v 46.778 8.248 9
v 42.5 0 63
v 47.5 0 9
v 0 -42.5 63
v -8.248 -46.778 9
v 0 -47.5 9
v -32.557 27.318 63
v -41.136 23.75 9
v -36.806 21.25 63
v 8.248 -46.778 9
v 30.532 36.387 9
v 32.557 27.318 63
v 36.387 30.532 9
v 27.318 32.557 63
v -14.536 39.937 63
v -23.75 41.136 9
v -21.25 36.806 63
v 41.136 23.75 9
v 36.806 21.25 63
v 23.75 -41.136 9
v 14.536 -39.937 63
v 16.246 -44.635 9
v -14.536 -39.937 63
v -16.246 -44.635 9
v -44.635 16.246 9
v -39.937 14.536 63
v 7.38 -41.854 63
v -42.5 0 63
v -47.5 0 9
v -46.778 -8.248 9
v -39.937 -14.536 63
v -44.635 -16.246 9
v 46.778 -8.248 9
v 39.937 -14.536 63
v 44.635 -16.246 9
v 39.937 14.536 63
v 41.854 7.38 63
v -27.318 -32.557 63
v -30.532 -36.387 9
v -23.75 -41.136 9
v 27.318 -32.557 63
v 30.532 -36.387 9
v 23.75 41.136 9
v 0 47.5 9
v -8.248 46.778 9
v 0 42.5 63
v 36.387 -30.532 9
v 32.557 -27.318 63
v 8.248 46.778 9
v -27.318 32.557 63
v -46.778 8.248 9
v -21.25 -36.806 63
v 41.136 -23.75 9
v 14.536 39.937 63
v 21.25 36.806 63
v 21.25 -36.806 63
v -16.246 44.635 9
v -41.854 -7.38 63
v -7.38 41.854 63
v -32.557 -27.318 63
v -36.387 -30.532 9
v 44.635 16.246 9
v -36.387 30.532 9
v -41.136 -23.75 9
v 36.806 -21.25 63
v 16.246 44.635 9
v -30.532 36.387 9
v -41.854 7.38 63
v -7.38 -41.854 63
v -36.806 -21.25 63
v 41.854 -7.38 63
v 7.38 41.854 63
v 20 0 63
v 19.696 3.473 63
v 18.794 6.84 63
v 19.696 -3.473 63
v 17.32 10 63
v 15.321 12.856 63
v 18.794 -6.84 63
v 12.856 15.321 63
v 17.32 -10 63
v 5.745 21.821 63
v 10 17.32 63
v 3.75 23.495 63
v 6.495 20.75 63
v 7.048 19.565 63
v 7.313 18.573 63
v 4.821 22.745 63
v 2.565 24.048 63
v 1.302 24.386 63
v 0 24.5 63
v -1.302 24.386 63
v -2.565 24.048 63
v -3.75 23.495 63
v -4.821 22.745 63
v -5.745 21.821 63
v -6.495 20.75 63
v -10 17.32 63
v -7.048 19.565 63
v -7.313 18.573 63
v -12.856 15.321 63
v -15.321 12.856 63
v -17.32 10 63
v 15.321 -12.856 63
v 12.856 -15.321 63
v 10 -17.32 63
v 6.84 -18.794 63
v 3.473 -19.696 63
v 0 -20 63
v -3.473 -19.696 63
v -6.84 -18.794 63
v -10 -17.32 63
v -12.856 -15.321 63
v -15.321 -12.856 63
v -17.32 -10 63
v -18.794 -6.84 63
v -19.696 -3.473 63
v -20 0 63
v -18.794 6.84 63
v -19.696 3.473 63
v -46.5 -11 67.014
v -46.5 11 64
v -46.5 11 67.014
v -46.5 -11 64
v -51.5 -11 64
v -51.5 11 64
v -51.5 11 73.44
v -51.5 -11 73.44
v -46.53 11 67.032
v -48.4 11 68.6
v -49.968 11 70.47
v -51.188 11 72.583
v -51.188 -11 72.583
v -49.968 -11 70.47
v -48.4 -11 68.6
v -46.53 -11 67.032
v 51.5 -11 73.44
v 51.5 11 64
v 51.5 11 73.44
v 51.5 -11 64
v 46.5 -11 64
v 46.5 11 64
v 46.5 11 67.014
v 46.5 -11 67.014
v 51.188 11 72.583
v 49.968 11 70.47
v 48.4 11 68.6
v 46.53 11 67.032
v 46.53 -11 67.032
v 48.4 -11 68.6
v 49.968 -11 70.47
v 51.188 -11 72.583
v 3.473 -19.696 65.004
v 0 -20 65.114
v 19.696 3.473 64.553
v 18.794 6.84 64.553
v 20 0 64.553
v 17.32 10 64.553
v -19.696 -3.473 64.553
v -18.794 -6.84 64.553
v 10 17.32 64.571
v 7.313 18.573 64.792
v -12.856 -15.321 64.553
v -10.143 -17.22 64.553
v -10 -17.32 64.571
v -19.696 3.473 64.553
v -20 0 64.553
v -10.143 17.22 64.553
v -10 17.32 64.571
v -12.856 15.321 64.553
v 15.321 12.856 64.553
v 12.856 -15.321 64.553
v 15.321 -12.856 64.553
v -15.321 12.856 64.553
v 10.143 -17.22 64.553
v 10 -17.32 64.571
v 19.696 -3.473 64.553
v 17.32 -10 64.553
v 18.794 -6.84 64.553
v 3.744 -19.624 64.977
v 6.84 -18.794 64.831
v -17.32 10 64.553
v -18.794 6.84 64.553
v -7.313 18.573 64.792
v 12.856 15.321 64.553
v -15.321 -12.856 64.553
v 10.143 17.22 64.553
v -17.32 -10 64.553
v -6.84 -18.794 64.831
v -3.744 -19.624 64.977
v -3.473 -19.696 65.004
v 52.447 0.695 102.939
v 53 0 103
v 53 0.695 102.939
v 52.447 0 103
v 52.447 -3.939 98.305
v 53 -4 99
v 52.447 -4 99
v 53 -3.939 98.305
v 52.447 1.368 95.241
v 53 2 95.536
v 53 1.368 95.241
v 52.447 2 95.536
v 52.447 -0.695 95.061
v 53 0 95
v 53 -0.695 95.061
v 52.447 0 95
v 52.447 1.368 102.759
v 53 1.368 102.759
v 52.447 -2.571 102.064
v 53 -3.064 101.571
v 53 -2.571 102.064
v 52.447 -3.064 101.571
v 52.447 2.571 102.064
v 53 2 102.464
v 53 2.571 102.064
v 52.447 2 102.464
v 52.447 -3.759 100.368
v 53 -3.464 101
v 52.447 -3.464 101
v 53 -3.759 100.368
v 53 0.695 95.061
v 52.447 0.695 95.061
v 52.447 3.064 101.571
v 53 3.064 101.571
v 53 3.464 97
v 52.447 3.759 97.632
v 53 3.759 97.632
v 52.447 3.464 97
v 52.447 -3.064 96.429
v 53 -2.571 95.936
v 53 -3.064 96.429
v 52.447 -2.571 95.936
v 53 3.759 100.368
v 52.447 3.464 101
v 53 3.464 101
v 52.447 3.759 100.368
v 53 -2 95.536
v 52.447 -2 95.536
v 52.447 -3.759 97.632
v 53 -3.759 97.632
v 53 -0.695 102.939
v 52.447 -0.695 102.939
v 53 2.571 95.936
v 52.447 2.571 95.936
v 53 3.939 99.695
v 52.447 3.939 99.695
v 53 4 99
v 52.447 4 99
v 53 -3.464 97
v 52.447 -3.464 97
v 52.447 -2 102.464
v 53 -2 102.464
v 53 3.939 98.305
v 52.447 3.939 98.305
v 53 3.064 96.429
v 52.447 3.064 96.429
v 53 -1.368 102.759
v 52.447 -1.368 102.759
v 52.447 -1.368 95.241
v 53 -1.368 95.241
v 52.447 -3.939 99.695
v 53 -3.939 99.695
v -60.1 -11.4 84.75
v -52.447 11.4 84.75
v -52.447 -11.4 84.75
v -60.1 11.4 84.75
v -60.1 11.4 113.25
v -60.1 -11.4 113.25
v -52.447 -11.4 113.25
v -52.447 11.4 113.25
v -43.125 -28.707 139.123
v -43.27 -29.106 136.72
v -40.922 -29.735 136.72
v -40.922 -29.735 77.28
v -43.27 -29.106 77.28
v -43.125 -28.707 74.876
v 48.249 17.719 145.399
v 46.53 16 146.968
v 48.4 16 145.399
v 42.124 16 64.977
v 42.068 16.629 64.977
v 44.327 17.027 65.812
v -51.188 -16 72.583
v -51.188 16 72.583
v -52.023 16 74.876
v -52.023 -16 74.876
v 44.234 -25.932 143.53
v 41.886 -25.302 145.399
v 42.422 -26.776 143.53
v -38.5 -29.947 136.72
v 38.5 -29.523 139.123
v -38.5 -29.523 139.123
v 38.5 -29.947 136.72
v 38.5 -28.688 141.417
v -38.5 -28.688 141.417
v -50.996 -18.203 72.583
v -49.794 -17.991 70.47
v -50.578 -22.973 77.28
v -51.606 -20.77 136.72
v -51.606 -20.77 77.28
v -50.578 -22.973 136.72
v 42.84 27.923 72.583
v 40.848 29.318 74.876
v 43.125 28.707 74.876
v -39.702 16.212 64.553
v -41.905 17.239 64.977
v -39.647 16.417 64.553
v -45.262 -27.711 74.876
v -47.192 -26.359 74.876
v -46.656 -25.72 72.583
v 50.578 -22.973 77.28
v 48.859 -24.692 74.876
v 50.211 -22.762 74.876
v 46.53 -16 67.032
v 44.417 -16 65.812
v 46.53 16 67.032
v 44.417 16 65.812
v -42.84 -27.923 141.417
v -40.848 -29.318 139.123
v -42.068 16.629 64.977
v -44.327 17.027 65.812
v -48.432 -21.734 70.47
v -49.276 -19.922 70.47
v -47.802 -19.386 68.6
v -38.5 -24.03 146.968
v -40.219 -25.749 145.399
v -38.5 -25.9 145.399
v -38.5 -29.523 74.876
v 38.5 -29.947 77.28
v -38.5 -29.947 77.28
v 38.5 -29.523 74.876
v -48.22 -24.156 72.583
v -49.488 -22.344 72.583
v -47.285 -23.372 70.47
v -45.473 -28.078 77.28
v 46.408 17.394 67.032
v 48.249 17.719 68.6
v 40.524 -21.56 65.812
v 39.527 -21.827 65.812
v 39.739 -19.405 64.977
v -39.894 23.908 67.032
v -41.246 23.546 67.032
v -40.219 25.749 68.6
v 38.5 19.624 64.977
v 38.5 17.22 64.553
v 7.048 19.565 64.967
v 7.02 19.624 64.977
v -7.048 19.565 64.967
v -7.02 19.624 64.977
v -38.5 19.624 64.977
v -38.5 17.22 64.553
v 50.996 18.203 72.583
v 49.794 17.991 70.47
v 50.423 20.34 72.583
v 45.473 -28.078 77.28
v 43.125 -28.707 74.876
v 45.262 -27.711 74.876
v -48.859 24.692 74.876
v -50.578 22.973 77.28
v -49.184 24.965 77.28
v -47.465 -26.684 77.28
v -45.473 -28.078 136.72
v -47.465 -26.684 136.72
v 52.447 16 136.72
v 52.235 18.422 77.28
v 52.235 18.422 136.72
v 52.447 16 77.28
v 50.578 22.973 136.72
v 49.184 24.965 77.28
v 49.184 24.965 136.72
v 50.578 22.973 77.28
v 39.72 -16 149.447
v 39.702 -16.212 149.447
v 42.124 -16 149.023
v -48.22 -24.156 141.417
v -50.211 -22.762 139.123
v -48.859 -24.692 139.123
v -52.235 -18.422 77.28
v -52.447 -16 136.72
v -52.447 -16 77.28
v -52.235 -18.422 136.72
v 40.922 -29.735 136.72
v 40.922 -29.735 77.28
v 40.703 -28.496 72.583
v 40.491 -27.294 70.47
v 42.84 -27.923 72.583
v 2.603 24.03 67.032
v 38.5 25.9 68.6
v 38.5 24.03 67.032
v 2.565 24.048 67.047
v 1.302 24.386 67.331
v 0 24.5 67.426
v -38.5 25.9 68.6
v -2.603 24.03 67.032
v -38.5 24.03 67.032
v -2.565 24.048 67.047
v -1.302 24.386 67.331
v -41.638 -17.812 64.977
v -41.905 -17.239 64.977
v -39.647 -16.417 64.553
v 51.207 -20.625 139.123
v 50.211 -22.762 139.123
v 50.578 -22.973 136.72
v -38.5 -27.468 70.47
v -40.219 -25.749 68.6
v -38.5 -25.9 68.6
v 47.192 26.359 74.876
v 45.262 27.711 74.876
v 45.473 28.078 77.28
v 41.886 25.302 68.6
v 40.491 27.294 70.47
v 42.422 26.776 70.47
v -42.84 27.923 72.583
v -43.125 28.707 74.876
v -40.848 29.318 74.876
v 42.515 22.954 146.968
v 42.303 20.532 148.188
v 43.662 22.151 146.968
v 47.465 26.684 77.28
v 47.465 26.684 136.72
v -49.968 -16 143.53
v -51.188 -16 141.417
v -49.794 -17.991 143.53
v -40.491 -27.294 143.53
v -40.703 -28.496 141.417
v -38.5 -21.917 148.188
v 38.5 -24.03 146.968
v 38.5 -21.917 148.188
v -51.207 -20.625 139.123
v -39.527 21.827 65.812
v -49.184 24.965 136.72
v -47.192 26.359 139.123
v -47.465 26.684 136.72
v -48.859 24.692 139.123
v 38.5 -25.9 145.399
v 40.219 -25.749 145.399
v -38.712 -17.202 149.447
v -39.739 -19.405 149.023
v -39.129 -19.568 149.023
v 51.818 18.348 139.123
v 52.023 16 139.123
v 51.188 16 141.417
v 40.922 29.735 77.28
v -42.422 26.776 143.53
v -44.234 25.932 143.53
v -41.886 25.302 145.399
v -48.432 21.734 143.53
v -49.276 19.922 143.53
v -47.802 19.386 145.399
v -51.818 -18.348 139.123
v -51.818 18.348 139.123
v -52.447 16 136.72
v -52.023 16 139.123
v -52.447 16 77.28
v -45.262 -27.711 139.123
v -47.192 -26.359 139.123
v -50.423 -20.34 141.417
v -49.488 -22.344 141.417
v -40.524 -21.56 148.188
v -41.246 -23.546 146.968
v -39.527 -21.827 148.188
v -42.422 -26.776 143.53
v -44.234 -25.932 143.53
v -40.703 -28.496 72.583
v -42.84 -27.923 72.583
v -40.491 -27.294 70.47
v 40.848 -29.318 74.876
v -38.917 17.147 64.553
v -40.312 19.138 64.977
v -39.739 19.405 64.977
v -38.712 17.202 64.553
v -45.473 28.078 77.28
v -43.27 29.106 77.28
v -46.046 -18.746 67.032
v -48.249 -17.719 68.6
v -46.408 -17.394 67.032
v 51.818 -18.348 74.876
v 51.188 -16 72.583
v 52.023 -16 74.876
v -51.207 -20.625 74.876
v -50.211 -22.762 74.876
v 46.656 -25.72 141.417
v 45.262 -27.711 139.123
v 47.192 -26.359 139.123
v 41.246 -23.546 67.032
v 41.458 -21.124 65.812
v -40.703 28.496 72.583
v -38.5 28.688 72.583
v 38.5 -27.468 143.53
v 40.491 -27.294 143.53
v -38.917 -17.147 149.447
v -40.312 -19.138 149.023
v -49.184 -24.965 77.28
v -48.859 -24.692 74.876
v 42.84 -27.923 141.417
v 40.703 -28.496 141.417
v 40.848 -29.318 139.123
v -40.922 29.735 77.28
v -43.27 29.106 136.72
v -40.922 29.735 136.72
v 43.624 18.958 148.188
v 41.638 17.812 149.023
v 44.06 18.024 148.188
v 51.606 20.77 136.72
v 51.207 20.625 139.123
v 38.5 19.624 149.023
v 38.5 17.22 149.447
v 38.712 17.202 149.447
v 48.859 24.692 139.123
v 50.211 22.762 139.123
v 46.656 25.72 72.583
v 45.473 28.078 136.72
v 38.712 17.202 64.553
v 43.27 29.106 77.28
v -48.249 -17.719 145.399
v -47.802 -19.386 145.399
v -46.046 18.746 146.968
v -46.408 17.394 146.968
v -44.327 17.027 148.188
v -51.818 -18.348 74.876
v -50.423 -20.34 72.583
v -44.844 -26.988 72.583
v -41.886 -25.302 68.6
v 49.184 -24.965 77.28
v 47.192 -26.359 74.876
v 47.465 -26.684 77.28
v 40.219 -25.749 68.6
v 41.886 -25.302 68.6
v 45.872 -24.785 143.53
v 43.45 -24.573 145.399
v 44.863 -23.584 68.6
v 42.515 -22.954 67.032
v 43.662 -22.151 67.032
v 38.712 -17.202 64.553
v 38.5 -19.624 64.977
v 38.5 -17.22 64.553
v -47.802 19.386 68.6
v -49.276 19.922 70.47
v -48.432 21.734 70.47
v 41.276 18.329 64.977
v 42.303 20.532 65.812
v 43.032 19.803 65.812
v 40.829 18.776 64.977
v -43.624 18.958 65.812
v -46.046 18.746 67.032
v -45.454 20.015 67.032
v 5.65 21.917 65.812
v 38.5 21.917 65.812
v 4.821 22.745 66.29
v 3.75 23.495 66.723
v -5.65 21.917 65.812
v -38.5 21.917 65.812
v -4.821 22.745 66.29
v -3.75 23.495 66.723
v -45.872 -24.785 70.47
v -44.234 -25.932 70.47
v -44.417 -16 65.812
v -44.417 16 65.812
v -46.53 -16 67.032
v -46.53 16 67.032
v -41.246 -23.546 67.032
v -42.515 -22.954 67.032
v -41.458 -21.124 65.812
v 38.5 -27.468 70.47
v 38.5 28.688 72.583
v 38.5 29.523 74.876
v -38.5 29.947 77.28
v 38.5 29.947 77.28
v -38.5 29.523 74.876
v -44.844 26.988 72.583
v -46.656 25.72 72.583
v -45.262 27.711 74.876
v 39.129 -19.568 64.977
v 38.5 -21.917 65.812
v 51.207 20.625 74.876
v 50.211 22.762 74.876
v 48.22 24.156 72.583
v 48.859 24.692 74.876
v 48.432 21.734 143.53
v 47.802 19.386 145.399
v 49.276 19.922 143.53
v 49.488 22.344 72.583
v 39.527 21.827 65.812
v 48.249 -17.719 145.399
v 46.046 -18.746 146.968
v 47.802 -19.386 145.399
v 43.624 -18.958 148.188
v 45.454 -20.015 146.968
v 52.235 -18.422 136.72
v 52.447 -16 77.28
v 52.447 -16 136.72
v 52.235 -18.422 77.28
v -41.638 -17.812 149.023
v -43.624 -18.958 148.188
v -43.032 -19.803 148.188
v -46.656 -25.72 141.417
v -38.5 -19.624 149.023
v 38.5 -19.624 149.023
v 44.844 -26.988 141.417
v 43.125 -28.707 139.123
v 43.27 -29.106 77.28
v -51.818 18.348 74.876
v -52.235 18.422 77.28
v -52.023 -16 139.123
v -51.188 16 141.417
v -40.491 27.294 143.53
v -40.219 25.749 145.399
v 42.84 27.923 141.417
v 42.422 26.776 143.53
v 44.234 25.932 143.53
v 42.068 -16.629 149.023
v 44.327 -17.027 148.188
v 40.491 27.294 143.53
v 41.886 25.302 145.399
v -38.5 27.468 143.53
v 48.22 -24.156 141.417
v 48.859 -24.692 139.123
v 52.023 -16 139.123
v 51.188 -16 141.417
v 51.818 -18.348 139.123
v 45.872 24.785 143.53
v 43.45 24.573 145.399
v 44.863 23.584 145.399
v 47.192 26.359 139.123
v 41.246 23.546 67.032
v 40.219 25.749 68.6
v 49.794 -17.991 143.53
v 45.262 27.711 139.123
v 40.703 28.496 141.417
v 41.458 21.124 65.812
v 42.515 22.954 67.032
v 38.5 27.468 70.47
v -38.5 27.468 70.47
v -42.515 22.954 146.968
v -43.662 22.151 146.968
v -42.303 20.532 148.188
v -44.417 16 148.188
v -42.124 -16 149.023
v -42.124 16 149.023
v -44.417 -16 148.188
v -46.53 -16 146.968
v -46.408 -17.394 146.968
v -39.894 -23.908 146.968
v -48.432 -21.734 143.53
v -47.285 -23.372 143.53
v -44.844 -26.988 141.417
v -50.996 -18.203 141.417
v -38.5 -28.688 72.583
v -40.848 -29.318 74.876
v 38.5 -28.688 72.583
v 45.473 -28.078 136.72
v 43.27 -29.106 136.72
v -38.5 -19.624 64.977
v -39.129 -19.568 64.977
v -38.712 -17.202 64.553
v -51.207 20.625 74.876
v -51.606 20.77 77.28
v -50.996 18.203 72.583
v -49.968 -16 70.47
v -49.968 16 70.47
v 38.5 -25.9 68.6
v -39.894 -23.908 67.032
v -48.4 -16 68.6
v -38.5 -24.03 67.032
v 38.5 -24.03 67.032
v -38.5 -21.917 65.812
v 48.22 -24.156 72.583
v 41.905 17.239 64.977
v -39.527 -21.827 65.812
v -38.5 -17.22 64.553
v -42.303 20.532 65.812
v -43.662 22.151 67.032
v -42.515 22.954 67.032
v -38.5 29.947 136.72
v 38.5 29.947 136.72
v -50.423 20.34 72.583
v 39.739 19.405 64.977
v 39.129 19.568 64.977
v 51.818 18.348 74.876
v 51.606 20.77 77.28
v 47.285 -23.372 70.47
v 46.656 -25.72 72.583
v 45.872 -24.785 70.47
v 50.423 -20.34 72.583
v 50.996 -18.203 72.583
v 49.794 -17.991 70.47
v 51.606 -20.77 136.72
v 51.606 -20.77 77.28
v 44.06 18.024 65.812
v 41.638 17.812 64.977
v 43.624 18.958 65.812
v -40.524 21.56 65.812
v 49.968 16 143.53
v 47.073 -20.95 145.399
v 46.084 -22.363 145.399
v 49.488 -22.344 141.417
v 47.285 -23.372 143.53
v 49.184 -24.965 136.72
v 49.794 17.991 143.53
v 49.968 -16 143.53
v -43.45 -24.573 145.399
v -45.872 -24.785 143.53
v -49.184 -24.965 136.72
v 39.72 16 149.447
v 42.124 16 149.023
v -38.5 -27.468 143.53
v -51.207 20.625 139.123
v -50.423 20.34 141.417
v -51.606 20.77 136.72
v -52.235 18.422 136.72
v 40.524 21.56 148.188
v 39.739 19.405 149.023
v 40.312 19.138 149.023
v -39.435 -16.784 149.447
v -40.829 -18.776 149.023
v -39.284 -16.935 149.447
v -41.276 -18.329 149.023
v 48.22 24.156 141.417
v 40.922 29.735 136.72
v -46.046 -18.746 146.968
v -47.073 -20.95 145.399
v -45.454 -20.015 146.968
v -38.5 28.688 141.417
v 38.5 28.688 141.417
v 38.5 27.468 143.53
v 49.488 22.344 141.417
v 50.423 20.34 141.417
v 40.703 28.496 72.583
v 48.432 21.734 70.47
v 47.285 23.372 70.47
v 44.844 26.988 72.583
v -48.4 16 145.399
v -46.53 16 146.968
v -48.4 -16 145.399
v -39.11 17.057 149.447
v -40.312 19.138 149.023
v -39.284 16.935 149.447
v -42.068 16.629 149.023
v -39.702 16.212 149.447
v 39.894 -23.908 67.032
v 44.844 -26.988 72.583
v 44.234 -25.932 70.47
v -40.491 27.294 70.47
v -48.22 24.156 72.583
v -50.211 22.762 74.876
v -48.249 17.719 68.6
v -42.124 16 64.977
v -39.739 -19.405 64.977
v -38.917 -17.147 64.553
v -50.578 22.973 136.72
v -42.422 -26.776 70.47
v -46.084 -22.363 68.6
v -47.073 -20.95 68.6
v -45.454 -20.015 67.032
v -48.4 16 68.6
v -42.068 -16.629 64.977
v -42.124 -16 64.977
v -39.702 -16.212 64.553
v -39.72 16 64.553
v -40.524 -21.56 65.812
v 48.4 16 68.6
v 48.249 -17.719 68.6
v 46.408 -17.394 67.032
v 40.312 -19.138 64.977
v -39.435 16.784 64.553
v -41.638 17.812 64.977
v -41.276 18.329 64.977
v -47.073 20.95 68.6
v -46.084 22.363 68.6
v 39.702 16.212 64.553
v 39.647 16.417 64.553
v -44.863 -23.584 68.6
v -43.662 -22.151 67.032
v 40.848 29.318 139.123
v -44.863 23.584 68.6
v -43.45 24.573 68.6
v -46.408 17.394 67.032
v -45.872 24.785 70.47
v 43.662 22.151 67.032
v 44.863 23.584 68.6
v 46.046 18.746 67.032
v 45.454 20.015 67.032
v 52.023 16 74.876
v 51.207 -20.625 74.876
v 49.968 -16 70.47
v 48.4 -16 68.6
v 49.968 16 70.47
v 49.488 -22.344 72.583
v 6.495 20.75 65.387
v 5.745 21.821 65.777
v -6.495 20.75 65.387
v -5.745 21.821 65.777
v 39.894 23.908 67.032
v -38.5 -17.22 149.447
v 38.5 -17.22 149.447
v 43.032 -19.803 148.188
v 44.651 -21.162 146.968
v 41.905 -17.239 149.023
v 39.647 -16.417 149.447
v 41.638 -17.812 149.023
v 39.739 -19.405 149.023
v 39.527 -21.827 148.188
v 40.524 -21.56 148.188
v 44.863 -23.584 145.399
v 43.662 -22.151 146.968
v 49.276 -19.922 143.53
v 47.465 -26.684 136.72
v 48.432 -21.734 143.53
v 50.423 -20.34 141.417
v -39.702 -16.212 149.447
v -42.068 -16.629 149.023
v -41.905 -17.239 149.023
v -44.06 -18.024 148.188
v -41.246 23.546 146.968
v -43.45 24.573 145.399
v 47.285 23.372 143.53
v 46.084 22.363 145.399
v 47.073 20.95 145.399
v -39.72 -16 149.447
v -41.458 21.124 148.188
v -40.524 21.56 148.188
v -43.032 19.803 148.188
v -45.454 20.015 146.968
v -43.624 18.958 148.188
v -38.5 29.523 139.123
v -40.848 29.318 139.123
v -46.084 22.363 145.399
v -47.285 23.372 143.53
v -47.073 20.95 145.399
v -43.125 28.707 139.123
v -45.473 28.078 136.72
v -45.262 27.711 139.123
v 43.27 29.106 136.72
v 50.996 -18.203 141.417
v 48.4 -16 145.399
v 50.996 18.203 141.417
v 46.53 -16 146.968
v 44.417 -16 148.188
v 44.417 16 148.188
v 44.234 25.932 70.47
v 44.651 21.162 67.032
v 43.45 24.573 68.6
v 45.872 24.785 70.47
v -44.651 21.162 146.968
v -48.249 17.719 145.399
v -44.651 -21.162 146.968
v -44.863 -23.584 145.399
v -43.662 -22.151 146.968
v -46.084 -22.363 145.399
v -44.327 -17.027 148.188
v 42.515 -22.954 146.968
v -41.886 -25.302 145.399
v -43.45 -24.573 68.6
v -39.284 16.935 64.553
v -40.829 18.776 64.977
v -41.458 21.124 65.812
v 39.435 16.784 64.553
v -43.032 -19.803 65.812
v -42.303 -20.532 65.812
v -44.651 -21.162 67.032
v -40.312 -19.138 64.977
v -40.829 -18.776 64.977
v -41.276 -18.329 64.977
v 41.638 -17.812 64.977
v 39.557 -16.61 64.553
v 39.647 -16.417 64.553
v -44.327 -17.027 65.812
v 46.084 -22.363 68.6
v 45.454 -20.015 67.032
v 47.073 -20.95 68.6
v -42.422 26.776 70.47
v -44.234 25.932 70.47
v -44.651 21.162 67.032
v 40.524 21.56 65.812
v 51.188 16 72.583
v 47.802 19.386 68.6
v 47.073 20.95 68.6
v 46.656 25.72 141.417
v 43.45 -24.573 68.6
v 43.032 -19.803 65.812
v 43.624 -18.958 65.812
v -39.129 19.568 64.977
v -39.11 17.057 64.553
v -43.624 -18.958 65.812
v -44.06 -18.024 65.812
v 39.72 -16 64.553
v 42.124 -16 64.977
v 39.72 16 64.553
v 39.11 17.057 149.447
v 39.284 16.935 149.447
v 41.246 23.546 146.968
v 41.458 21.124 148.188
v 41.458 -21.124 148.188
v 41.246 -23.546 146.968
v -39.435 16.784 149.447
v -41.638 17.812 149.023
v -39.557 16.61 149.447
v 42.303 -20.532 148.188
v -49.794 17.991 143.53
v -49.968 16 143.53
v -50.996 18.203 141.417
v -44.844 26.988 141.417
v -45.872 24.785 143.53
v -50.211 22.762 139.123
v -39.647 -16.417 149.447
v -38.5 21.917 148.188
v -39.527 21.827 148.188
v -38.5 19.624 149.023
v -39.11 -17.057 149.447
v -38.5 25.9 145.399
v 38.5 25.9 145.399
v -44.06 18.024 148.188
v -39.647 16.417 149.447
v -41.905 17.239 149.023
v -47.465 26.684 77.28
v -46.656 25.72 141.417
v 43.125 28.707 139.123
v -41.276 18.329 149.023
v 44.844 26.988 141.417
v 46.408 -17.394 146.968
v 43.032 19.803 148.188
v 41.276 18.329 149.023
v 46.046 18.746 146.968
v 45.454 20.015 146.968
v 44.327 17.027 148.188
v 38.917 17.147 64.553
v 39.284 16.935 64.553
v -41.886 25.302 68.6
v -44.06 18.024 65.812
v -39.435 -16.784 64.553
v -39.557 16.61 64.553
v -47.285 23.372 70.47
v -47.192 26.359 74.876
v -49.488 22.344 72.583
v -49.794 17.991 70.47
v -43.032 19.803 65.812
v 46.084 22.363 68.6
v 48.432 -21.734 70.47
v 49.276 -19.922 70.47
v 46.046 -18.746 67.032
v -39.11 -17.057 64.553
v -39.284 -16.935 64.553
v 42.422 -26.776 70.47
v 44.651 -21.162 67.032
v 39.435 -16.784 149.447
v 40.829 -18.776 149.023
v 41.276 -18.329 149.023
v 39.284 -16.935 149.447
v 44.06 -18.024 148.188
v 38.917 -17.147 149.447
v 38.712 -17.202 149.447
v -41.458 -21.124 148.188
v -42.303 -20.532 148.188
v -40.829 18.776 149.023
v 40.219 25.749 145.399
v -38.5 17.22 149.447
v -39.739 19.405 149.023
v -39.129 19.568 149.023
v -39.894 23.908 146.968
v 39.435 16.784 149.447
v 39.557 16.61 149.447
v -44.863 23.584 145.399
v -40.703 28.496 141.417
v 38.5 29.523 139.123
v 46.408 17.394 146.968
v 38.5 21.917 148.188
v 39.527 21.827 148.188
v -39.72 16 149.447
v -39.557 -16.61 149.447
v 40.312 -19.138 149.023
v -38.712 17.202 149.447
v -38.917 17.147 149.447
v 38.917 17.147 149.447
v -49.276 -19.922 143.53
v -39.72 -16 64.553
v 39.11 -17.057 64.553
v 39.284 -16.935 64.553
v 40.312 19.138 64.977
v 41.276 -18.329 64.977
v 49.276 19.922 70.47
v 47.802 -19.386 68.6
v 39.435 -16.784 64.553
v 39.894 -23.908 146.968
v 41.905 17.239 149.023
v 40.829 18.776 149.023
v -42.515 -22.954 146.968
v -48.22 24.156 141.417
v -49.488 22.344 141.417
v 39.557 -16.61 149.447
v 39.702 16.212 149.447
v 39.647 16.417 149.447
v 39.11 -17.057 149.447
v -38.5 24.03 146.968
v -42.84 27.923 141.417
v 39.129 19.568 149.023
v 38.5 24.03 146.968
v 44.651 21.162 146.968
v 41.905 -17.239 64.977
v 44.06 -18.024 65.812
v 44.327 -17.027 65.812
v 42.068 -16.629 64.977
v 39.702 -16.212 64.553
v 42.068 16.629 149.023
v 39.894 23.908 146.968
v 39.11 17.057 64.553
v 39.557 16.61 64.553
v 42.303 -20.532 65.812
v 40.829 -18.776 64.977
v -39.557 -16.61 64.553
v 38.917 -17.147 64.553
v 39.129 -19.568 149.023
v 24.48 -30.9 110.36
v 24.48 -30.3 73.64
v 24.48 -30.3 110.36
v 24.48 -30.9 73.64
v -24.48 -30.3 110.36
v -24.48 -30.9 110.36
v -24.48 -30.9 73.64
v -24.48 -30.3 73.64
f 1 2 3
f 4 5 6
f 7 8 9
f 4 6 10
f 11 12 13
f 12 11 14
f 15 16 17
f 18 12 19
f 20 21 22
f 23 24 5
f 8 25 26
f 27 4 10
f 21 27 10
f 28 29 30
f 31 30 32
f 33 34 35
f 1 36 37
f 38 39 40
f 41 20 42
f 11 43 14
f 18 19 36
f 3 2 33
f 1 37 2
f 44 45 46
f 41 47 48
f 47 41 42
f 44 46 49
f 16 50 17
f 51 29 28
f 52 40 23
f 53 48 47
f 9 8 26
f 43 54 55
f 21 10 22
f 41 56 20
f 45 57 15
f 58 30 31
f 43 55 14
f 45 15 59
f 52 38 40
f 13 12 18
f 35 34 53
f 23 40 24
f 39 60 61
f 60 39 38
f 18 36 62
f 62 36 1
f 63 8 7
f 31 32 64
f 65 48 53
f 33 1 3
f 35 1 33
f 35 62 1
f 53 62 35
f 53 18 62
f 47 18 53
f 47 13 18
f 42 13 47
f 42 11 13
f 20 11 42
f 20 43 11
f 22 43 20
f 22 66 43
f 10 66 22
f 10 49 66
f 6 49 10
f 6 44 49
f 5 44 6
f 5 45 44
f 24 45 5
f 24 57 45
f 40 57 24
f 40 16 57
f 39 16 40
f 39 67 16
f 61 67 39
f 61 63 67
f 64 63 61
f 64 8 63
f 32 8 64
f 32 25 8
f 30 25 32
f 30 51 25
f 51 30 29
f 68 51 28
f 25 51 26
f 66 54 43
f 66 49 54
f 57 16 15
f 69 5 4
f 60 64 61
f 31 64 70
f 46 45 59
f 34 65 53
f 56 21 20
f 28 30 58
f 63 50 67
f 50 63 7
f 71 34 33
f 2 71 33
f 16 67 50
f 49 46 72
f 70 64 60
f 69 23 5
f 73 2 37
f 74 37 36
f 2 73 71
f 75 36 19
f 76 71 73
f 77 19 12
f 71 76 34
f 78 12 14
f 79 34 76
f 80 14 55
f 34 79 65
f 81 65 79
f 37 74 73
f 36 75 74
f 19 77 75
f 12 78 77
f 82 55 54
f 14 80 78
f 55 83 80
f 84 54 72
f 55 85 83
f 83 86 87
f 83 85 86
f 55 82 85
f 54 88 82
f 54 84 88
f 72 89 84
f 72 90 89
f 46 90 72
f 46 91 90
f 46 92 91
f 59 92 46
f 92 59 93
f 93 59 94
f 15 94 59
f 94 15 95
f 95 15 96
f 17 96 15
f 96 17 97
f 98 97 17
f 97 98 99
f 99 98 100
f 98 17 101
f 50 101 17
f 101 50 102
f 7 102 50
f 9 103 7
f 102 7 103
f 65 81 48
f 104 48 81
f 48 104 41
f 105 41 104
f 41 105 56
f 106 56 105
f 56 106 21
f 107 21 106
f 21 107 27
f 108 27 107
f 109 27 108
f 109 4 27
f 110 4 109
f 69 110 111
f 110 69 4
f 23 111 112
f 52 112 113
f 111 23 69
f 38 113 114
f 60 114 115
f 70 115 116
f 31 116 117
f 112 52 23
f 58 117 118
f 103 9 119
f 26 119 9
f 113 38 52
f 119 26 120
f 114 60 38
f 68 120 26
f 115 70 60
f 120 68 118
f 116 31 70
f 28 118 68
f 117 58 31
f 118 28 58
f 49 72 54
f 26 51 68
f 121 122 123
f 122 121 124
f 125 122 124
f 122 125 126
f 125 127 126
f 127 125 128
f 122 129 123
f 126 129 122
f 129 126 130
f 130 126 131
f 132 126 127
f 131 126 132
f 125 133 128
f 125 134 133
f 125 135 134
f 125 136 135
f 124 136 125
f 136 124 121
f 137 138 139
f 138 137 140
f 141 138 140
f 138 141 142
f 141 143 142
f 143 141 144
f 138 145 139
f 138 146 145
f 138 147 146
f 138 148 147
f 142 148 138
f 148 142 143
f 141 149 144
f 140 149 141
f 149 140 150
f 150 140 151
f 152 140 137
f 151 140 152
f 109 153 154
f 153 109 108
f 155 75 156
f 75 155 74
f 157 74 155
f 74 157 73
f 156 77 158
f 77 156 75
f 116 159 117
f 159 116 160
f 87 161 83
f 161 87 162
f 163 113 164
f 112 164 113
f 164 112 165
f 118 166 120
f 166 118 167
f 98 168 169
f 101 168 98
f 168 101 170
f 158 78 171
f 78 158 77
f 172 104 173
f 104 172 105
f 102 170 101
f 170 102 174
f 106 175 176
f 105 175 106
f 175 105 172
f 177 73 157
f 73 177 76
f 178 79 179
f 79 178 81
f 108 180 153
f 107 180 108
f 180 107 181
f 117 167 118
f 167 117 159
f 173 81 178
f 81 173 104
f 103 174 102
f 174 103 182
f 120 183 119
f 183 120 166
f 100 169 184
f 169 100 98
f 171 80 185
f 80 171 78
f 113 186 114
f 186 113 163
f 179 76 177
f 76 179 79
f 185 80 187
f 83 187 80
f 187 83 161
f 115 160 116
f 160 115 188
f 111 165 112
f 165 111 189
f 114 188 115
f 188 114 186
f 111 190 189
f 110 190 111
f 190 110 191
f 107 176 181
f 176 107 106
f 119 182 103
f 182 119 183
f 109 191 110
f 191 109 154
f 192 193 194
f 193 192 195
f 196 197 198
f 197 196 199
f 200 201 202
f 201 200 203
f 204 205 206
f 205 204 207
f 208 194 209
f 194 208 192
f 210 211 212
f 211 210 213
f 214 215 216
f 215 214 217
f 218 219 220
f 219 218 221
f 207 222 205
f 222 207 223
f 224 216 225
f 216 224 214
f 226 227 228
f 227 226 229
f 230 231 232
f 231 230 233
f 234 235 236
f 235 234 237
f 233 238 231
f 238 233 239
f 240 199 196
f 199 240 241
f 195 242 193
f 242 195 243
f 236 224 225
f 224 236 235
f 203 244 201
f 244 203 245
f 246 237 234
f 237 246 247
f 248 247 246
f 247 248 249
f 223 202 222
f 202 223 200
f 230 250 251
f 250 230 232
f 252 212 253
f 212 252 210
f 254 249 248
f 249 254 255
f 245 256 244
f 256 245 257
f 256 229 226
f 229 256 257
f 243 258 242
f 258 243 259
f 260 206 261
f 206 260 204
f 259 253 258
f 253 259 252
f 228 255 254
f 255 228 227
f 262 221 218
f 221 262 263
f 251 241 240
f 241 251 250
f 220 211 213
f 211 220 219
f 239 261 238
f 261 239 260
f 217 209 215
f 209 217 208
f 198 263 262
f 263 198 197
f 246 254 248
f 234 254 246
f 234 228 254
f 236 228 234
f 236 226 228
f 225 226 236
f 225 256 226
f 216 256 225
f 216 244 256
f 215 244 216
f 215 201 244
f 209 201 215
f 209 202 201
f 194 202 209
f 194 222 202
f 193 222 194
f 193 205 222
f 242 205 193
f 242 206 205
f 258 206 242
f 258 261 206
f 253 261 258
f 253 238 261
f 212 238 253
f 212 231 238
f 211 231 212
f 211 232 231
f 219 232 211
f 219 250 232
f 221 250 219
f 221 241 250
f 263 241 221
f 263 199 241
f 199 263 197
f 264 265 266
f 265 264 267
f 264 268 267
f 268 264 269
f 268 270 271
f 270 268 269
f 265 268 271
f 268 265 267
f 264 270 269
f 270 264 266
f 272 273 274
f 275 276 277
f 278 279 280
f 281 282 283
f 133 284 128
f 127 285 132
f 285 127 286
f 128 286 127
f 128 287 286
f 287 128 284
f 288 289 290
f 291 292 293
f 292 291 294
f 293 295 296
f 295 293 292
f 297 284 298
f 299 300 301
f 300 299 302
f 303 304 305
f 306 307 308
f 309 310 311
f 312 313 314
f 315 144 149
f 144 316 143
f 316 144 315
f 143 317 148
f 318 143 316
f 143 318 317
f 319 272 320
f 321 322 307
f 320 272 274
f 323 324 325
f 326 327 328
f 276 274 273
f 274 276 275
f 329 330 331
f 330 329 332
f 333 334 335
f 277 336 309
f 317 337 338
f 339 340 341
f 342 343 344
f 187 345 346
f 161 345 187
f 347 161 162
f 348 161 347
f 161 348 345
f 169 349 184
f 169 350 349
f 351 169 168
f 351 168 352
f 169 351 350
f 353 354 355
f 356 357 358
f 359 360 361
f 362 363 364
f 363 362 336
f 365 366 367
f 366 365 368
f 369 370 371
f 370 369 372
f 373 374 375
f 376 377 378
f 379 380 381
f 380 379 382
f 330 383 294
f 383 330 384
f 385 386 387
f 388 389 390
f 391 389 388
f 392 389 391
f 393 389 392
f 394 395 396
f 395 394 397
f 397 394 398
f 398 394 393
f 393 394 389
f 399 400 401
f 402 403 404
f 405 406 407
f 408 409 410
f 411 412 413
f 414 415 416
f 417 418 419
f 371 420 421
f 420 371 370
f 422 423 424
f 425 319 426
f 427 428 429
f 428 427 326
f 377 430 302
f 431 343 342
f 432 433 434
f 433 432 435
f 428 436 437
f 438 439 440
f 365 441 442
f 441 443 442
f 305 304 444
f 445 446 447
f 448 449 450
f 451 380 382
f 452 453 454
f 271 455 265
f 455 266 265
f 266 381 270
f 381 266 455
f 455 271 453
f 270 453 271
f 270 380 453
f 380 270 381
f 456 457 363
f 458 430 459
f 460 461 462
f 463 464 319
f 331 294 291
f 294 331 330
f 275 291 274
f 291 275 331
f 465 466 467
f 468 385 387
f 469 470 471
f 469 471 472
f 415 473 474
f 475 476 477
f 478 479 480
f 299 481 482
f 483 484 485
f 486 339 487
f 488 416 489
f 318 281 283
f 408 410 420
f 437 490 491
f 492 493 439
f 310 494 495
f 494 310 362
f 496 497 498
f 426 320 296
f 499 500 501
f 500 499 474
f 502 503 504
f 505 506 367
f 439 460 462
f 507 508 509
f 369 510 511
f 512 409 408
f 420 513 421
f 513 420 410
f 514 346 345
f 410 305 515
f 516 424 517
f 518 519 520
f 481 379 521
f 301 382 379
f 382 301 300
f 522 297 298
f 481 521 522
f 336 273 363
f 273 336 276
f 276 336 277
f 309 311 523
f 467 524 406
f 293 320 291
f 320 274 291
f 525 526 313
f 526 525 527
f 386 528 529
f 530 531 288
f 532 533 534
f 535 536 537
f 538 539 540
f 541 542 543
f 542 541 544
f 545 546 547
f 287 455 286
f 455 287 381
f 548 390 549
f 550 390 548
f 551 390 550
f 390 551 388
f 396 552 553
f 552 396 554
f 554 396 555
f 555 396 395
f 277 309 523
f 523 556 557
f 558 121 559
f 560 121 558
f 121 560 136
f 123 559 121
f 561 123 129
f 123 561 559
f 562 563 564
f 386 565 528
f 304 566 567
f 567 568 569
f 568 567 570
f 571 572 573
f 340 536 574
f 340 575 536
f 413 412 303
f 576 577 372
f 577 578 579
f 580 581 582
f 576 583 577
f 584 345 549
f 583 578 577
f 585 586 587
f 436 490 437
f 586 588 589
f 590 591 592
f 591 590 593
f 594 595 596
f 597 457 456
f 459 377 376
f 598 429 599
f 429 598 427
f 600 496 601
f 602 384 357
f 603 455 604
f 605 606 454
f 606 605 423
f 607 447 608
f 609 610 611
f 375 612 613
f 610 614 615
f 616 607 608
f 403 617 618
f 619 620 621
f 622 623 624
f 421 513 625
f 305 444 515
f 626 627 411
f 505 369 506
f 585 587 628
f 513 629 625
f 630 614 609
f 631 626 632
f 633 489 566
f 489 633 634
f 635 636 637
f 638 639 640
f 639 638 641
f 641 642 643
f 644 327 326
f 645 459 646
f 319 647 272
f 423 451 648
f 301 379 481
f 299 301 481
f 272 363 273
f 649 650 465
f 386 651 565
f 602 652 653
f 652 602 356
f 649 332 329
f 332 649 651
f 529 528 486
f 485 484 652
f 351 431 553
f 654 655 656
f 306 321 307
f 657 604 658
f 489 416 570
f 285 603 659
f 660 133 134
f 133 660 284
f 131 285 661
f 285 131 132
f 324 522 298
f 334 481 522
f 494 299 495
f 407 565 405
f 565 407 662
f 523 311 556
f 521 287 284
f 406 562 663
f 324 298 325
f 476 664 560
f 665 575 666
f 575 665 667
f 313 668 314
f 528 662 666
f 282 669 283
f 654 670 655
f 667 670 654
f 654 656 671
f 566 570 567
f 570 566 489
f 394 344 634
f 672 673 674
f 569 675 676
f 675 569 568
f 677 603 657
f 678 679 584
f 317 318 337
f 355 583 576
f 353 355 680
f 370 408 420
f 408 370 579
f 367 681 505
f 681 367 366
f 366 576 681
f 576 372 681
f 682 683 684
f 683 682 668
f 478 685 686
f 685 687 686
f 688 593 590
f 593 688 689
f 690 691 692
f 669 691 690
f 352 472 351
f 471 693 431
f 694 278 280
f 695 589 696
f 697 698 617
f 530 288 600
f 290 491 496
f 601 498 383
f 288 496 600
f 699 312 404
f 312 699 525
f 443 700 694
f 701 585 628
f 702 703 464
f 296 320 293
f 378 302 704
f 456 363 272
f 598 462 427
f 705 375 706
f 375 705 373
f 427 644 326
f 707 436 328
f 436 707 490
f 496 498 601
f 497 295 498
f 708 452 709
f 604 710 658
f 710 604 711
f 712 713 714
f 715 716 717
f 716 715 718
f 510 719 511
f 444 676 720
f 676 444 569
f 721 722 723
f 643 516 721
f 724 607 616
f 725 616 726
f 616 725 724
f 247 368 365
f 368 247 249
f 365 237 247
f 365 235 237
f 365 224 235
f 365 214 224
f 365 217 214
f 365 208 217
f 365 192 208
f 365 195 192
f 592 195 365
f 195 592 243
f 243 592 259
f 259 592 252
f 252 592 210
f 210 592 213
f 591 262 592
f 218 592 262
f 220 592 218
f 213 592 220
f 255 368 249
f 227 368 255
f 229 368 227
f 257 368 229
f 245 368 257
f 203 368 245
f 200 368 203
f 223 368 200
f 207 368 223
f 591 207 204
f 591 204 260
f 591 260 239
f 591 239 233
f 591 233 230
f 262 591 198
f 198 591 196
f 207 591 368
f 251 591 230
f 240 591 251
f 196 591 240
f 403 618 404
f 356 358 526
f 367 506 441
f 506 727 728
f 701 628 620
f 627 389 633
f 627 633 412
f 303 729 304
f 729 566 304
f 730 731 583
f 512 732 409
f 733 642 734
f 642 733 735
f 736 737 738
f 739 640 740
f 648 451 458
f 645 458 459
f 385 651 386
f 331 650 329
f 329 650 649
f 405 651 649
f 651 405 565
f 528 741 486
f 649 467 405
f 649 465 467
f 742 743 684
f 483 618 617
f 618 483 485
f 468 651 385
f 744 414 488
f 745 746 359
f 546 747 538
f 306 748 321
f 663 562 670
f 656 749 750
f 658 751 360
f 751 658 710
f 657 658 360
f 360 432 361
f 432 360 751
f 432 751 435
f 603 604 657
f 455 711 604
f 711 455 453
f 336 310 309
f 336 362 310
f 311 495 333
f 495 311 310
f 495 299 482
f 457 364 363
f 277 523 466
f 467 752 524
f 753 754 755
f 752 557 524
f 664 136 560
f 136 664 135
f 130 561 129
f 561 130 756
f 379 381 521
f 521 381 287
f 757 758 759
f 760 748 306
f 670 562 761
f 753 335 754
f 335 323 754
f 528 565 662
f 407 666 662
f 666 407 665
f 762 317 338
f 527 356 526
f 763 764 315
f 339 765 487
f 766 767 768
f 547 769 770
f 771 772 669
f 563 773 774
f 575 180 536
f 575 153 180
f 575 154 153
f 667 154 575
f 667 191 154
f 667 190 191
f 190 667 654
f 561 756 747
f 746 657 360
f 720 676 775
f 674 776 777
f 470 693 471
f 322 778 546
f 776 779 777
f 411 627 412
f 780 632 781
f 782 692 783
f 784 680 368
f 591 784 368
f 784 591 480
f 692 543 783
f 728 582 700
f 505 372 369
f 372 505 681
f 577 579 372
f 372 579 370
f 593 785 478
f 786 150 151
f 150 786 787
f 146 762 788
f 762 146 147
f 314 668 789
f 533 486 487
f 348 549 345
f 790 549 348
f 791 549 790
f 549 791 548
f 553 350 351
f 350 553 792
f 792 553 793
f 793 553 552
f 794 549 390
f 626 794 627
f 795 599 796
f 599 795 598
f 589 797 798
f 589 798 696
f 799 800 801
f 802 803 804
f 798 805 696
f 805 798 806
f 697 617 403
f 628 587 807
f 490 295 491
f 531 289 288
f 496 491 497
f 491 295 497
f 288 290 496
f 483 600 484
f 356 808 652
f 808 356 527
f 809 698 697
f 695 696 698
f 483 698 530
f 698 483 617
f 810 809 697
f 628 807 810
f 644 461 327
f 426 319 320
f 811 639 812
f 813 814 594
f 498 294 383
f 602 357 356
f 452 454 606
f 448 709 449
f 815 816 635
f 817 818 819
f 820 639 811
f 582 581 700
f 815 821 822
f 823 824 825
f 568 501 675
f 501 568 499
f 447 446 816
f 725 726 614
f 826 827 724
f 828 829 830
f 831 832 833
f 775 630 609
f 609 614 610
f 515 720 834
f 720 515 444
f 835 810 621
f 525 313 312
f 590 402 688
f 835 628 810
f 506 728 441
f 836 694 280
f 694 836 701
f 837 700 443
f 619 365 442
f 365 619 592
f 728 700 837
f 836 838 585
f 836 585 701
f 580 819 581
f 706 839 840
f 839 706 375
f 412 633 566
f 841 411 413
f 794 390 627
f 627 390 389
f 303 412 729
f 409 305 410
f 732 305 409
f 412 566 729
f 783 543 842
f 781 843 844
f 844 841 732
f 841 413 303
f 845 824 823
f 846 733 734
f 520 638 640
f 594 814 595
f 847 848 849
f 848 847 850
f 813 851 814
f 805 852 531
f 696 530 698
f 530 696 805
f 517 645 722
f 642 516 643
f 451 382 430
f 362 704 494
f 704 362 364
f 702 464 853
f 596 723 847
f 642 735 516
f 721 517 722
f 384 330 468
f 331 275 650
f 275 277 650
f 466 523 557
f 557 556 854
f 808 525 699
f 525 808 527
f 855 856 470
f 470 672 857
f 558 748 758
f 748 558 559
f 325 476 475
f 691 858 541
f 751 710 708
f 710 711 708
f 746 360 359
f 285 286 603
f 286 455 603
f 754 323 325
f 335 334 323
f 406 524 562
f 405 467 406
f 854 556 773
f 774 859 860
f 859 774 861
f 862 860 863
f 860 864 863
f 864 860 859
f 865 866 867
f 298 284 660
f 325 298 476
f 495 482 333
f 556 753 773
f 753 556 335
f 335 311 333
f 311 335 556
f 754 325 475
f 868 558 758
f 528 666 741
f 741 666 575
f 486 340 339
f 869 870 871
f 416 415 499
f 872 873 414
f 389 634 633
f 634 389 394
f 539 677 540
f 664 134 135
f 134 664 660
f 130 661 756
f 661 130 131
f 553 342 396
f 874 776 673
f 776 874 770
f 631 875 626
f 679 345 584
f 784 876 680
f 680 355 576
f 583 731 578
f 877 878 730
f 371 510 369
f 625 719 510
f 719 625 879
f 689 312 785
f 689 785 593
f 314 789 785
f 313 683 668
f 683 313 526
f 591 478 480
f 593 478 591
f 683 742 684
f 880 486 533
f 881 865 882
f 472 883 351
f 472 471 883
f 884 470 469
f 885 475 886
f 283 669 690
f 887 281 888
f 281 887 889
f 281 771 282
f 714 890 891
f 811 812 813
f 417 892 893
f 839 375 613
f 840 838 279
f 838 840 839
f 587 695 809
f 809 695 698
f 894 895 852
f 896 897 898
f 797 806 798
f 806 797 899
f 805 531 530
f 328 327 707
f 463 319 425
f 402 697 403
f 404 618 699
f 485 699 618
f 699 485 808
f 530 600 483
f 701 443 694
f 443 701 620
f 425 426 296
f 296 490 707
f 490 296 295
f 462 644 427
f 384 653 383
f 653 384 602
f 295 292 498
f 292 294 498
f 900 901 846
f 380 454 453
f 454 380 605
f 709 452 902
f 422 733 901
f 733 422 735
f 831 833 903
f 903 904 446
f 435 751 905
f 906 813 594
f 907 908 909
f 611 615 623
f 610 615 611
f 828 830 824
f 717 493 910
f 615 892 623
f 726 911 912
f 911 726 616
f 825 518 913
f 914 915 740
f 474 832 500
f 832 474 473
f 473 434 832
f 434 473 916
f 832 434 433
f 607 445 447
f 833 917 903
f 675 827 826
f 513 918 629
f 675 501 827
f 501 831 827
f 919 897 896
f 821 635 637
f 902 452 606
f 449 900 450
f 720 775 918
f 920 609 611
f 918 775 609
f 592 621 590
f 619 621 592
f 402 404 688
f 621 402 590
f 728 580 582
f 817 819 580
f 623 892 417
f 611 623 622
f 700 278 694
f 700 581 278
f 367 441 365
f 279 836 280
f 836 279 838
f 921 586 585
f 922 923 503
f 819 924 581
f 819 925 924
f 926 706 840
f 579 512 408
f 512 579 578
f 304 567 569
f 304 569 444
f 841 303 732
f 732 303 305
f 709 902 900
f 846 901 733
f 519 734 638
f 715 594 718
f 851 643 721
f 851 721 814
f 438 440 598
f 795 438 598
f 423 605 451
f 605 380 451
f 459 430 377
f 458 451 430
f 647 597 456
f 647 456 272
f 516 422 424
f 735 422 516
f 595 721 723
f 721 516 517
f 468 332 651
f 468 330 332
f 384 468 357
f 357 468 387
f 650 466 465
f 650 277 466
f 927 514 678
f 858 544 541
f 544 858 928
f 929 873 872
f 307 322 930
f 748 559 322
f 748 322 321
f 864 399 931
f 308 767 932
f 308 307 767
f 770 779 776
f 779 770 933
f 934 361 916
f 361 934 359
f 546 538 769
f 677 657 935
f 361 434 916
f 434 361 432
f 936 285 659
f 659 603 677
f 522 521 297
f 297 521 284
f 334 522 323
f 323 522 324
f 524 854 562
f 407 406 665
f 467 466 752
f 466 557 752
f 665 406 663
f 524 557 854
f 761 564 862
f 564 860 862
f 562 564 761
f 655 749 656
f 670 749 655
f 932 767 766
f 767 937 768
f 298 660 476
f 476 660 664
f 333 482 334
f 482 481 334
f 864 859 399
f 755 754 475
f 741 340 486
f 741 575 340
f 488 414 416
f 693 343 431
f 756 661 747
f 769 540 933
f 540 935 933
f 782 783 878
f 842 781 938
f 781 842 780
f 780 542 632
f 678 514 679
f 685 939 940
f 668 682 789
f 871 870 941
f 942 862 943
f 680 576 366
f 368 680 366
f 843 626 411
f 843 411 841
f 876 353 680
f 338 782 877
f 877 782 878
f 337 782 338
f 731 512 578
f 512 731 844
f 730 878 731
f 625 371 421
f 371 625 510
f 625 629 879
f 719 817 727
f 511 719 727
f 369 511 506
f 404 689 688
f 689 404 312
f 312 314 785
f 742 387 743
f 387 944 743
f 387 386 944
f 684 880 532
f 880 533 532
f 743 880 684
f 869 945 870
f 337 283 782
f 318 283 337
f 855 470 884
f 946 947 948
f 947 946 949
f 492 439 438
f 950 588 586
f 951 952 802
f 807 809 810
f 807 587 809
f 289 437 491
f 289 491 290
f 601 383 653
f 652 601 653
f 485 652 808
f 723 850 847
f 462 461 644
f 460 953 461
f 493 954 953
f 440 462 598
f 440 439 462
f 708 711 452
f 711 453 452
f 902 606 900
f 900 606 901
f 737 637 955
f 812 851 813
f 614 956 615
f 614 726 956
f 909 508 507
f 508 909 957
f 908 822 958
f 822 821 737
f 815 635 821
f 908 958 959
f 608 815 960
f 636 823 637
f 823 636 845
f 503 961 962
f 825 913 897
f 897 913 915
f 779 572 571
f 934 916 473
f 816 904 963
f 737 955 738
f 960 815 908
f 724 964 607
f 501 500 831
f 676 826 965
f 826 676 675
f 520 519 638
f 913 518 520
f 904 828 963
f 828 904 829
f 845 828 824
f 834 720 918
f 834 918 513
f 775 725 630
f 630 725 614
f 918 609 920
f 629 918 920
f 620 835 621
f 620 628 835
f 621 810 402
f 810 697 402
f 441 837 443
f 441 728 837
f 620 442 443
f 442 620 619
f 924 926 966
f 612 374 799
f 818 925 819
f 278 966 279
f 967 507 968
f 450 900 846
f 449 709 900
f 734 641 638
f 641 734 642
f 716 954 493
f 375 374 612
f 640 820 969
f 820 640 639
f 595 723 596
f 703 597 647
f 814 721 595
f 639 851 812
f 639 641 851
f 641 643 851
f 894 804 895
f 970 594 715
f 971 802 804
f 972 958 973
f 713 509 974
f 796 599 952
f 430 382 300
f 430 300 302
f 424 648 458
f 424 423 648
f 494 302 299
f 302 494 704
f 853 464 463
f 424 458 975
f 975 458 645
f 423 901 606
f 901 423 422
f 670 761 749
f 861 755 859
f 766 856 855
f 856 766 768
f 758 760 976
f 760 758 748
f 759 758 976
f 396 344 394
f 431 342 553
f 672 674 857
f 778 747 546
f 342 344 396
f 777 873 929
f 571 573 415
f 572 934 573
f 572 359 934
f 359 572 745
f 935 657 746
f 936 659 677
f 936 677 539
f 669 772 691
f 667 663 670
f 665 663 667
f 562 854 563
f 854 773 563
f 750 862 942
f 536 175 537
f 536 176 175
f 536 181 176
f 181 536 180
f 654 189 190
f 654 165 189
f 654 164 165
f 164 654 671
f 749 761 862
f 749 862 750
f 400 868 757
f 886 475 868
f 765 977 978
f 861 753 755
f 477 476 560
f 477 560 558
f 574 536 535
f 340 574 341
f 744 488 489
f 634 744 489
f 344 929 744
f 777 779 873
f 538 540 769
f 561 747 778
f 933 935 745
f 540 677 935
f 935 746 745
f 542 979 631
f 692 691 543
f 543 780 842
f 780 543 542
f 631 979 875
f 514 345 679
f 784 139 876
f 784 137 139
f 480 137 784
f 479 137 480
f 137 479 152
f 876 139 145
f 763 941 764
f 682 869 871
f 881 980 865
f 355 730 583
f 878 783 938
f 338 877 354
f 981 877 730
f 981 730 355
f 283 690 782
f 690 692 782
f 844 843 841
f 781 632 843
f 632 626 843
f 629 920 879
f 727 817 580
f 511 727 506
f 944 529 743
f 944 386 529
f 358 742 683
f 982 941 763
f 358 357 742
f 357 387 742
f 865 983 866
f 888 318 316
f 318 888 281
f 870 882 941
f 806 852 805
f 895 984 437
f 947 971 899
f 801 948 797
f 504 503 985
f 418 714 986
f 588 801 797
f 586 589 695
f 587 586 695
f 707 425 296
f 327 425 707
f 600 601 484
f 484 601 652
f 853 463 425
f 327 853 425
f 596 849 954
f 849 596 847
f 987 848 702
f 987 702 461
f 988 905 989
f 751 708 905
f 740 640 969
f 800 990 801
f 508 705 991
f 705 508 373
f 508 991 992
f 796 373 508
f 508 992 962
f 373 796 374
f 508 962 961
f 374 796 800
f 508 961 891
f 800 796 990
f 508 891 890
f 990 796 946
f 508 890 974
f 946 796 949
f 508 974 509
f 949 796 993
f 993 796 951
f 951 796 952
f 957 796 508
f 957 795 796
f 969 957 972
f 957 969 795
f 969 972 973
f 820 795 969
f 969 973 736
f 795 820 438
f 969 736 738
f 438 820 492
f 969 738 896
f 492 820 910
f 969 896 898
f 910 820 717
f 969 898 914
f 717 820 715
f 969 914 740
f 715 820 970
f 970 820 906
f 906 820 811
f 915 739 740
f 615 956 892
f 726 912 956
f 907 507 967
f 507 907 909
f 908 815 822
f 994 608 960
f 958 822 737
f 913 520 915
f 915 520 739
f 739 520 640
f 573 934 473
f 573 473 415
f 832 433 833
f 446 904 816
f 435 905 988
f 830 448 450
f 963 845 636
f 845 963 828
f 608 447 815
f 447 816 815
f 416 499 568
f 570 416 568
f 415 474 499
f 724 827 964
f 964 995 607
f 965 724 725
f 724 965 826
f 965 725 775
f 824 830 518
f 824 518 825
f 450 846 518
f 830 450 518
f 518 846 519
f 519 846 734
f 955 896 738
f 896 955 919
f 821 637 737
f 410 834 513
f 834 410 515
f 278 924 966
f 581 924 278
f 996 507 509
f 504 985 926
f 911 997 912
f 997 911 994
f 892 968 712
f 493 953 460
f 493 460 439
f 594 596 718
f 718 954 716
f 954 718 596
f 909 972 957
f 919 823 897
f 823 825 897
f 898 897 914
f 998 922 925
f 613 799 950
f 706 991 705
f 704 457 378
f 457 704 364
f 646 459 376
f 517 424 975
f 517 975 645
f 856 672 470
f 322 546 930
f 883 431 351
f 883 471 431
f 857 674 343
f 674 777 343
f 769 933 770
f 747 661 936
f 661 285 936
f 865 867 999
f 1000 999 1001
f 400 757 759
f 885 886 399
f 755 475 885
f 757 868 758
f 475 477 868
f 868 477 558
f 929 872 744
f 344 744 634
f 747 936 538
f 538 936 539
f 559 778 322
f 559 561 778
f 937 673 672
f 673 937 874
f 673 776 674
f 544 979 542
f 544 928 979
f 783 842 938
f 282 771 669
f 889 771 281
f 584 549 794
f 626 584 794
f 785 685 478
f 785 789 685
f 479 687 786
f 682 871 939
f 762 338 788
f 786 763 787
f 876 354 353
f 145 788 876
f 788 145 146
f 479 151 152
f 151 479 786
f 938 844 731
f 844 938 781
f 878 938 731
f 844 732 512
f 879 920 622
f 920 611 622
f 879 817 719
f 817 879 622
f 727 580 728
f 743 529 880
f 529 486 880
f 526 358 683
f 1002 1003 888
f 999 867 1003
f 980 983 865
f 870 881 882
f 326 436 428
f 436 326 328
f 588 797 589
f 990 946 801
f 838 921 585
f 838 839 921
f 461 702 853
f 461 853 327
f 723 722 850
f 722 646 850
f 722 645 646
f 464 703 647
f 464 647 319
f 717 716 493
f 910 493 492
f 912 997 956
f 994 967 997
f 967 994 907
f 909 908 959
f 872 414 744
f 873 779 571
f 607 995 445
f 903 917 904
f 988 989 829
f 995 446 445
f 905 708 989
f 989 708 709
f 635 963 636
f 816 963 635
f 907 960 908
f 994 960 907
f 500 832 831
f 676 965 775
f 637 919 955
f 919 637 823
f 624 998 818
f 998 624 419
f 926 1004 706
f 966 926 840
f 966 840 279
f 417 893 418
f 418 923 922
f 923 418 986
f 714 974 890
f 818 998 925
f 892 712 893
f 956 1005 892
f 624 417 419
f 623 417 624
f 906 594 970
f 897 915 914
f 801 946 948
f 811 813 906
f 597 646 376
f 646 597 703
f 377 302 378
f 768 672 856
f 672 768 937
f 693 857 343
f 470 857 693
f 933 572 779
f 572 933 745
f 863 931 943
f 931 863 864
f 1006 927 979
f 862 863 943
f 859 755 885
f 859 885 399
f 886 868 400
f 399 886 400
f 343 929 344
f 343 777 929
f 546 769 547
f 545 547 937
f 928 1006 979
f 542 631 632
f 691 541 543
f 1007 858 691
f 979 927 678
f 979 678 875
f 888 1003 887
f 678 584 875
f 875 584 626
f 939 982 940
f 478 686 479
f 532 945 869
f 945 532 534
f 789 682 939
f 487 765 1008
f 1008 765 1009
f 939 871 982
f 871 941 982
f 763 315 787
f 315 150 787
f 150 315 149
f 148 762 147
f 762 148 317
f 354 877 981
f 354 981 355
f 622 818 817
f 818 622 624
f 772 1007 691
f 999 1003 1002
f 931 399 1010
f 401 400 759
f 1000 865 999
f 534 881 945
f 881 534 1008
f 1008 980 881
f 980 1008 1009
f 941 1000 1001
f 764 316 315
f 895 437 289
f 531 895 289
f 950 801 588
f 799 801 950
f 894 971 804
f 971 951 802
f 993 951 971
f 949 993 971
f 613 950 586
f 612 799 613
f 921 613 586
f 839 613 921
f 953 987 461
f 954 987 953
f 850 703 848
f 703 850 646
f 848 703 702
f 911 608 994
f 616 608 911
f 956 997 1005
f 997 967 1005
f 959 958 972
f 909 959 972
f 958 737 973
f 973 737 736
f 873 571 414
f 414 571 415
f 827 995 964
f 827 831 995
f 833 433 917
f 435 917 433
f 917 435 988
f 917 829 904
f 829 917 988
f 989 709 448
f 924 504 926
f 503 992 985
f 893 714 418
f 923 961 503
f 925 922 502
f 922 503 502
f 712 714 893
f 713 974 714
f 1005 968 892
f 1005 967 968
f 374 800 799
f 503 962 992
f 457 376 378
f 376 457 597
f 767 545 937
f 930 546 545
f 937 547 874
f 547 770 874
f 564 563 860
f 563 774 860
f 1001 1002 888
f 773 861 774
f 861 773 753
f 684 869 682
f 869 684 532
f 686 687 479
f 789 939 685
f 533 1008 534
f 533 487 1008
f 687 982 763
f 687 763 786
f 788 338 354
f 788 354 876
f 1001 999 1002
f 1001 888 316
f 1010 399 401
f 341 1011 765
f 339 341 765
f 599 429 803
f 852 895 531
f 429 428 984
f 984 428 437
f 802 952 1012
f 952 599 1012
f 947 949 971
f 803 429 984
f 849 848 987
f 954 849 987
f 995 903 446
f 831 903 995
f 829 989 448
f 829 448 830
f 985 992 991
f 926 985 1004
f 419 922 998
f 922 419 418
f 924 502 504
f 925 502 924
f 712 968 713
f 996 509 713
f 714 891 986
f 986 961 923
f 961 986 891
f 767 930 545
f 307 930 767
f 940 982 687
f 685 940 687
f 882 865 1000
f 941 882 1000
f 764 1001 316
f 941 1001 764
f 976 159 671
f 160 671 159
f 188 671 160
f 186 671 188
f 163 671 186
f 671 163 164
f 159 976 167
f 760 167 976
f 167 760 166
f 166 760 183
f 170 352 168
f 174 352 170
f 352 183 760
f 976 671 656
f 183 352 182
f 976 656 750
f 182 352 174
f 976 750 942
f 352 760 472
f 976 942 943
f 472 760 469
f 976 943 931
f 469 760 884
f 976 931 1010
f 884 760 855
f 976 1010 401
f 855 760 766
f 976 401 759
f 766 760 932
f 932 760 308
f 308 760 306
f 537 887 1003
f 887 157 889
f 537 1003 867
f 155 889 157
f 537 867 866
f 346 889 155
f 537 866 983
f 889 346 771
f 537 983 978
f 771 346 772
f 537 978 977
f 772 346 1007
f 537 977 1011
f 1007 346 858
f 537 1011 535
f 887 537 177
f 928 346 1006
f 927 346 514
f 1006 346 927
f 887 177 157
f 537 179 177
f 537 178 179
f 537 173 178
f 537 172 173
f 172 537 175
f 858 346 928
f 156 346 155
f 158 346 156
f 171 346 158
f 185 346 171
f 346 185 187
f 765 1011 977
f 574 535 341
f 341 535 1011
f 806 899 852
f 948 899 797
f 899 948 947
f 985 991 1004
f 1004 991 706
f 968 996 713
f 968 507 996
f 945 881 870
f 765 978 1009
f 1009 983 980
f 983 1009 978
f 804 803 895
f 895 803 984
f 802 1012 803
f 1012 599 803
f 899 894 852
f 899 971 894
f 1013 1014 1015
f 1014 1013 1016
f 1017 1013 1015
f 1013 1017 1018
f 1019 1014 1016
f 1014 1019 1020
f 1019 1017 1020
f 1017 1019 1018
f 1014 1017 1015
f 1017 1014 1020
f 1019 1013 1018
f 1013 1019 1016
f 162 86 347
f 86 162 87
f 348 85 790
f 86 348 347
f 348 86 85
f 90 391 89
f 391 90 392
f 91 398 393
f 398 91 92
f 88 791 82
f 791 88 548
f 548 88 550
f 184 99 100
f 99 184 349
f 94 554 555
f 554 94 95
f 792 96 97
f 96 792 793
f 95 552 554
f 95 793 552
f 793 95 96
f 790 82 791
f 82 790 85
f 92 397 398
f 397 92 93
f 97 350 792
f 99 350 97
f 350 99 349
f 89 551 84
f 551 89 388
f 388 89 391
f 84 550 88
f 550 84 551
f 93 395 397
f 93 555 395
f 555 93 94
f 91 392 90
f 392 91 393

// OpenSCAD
// Robot Companion V0.1: pan/tilt kinematic envelope only.
// NOT a final printable bracket. All units mm.
$fn=36;
pan_angle=0; pitch_angle=0; // target +/-45 and +/-20 degrees (unvalidated)
head_w=105; head_d=60; head_h=85; head_r=14;
head_z=107; pan_z=64; pitch_z=99;
servo_l=22.8; servo_w=12.2; servo_h=28.5; // TowerPro MG90S nominal dimensions
module rounded_box(w,d,h,r) {
 hull() for (x=[-w/2+r,w/2-r],y=[-d/2+r,d/2-r],z=[-h/2+r,h/2-r])
 translate([x,y,z]) sphere(r=r);
}
module head_proxy(){
 color([0.86,0.88,0.91,0.24]) rounded_box(head_w,head_d,head_h,head_r);
 // LCD and camera are nominal bounding volumes, not vendor STEP.
 color([0.08,0.35,0.16]) translate([0,-head_d/2+7,-15])
 cube([70.5,1.6,43.3],center=true);
 color([0.05,0.06,0.08]) translate([0,-head_d/2-0.6,-15])
 cube([48.96,0.6,36.72],center=true);
 color([0.13,0.32,0.7]) translate([0,-head_d/2+18,22])
 cube([32,1.6,32],center=true);
 color([0.06,0.08,0.1]) translate([0,-head_d/2+7,22])
 rotate([90,0,0]) cylinder(d=14,h=12,center=true);
}
module yoke(){
 color([0.52,0.55,0.61]){
  for(x=[-49,49]) translate([x,0,(pitch_z-pan_z)/2])
   cube([5,22,pitch_z-pan_z],center=true);
  translate([0,0,-1]) cylinder(d=40,h=7,center=true);
 }
 color([0.14,0.18,0.24]) translate([0,0,pitch_z-pan_z])
 rotate([0,90,0]) cylinder(d=8,h=106,center=true);
 // Tilt actuator body only; actual mounting shaft, horn and bearing TBD.
 color([0.19,0.24,0.31]) translate([-54,0,pitch_z-pan_z])
 rotate([0,90,0]) cube([servo_h,servo_l,servo_w],center=true);
}
module torso_proxy(){
 color([0.81,0.84,0.87,0.30]) translate([0,0,36])
 cylinder(h=54,d1=95,d2=85,center=true);
 color([0.19,0.24,0.31]) translate([0,0,47])
 cube([servo_l,servo_w,servo_h],center=true);
 color([0.52,0.56,0.62]) translate([0,0,pan_z-3])
 cylinder(h=8,d=28,center=true);
}
torso_proxy();
translate([0,0,pan_z]) rotate([0,0,pan_angle]){
 yoke();
 translate([0,0,pitch_z-pan_z]) rotate([pitch_angle,0,0])
 translate([0,0,head_z-pitch_z]) head_proxy();
}
color([1,0.55,0.08,0.25]) translate([0,17,pan_z+10])
 cylinder(h=25,d=15,center=true); // cable keepout, NOT cable bend design
